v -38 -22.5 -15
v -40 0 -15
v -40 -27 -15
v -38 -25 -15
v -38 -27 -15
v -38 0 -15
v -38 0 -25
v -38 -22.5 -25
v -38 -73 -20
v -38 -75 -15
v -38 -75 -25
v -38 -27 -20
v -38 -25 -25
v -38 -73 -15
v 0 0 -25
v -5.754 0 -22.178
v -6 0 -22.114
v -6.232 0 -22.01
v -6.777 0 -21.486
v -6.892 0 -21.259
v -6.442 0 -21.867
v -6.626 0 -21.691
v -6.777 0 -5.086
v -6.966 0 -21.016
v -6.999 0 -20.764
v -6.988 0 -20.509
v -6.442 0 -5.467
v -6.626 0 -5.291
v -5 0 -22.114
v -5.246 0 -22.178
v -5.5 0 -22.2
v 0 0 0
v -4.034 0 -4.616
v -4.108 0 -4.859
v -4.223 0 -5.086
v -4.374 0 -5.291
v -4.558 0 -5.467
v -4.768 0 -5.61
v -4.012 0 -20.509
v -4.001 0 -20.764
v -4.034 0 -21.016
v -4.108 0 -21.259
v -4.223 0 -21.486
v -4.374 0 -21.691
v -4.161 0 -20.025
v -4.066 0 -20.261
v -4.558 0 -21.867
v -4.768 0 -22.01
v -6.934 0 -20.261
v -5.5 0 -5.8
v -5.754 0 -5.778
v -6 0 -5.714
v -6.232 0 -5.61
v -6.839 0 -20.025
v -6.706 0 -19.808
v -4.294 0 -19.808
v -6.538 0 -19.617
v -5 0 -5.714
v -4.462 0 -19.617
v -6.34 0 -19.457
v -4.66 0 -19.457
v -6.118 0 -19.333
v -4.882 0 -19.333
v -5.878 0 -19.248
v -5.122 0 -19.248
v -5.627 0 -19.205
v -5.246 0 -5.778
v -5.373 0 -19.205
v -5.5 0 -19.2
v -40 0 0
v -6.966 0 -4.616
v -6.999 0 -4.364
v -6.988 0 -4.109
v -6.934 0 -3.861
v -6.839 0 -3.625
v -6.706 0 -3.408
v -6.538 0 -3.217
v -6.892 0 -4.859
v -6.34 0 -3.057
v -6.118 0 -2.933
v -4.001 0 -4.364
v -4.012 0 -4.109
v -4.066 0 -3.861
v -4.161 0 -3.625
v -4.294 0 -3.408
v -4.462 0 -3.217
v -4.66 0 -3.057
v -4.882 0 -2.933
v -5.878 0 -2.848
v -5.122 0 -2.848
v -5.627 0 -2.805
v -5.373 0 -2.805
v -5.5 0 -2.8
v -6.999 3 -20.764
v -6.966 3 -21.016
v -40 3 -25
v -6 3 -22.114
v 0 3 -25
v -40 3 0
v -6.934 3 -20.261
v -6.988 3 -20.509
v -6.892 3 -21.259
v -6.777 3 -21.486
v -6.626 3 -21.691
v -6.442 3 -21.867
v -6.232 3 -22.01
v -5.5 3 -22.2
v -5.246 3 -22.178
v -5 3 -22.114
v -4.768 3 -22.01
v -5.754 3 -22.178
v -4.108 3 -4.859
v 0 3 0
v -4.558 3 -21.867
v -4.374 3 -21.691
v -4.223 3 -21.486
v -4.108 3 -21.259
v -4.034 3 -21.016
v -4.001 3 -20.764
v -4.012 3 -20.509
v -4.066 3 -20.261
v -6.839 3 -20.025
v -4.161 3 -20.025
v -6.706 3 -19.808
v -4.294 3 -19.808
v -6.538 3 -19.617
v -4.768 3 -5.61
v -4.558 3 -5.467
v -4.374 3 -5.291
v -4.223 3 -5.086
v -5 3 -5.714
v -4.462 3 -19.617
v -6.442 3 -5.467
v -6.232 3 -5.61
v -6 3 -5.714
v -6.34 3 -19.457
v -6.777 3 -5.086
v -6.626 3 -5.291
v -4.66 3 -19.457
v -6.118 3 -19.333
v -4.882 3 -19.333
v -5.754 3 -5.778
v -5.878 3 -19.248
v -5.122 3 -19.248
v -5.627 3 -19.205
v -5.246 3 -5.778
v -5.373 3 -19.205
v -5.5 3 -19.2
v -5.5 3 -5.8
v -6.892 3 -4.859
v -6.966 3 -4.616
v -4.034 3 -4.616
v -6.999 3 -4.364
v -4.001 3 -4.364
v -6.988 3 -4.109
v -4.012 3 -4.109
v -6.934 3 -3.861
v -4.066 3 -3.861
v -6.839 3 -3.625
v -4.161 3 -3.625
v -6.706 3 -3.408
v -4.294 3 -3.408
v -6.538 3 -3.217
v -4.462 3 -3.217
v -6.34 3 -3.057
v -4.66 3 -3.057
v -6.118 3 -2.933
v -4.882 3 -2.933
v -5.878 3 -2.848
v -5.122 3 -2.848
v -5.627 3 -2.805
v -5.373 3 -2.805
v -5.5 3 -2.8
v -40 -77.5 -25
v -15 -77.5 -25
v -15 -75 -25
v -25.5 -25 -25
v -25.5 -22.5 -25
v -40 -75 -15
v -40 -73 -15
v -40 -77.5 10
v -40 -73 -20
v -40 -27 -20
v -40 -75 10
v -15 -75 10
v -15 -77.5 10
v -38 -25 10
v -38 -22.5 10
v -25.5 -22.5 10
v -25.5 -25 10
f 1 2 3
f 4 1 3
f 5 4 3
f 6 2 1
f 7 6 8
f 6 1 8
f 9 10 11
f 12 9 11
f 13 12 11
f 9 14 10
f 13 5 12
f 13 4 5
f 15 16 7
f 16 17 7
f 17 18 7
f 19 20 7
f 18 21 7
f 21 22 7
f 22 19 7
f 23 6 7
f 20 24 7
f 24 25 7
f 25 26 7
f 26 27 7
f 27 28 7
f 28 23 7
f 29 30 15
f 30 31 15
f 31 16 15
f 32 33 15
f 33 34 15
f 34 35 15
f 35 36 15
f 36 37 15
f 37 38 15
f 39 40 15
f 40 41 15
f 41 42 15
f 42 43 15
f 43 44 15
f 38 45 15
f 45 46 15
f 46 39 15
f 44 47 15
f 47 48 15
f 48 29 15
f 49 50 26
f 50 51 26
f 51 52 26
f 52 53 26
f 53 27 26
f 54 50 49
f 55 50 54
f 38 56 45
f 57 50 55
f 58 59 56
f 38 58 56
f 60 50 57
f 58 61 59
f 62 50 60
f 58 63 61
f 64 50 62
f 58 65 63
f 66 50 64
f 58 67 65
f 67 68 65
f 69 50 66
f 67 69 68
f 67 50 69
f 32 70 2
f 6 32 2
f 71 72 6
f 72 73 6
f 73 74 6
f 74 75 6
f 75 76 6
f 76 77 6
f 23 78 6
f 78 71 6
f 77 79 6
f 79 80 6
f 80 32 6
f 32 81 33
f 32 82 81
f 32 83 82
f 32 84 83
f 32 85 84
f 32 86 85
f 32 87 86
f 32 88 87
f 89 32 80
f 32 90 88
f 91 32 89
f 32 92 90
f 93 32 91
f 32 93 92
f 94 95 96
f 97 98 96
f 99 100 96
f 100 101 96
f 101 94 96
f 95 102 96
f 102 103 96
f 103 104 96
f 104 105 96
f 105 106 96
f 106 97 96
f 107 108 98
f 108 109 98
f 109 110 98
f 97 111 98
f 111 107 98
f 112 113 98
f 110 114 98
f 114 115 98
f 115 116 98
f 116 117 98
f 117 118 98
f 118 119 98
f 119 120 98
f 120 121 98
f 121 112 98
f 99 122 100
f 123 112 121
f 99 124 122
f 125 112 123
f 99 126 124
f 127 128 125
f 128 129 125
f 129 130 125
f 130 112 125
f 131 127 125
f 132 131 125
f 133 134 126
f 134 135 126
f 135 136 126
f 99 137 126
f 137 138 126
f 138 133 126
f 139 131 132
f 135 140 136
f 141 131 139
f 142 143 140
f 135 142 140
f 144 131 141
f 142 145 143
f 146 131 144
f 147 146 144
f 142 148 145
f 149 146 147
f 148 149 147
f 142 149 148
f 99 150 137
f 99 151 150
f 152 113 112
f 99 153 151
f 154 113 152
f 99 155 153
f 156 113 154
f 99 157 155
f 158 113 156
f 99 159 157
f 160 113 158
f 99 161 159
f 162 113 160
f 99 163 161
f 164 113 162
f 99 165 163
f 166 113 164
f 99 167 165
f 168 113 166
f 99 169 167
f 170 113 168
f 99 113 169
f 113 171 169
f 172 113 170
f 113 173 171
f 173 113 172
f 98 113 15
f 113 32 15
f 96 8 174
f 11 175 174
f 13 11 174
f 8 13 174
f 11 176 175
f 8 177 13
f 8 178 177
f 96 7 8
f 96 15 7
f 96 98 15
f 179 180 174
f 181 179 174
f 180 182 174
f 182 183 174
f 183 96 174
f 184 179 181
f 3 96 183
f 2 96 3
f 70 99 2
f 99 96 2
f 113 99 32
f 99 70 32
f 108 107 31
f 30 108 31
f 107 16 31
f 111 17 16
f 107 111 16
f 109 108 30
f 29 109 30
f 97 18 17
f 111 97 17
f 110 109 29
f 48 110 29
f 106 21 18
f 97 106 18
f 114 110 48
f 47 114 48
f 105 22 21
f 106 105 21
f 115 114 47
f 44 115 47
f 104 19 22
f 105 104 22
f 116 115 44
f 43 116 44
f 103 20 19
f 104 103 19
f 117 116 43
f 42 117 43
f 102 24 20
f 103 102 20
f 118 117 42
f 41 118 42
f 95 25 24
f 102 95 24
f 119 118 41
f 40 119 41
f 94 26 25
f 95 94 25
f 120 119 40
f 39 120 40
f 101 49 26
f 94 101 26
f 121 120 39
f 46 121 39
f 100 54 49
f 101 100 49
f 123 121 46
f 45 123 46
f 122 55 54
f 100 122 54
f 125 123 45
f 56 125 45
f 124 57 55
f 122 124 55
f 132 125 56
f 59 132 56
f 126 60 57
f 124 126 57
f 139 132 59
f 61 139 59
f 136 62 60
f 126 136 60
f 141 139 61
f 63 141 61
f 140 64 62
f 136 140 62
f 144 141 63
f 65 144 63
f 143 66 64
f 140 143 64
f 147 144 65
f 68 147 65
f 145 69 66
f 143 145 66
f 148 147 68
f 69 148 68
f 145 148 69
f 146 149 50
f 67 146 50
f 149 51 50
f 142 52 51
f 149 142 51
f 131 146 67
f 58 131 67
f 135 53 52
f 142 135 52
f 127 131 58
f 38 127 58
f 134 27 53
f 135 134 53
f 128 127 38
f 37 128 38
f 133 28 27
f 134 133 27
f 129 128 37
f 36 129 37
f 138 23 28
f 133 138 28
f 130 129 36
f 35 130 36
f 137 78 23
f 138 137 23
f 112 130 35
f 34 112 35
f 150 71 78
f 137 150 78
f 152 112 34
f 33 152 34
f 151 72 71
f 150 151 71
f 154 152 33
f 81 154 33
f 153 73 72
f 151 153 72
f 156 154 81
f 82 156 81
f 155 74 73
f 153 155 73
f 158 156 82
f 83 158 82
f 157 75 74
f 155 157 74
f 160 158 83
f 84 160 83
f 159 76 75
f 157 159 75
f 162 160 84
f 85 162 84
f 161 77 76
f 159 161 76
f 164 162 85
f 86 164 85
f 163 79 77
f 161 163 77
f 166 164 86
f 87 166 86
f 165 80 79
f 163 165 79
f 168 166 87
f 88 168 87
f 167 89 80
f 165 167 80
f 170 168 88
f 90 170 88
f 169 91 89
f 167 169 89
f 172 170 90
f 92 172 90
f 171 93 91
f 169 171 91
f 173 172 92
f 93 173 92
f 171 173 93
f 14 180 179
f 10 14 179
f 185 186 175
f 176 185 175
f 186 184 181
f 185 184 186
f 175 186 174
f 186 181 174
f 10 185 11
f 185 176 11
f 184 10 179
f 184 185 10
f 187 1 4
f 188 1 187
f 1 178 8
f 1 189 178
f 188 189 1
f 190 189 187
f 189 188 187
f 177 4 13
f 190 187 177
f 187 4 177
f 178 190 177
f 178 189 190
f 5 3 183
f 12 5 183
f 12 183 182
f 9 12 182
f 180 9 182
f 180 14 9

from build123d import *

# Parameters (mm, degrees)
SKETCH1_W           = 40
SKETCH1_H           = 25
SKETCH1_R           = 1.5
BOSS_EXTRUDE1_DEPTH = 3
SKETCH2_W           = 2
SKETCH2_H           = 10
BOSS_EXTRUDE2_DEPTH = 75
SKETCH6_W           = 25
SKETCH6_H           = 35
BOSS_EXTRUDE3_DEPTH = 2.5
SKETCH7_W           = 35
SKETCH7_H           = 2.5
BOSS_EXTRUDE4_DEPTH = 12.5
SKETCH8_W           = 5
SKETCH8_H           = 46
CUT_EXTRUDE2_DEPTH  = 90.862394805


with BuildPart() as part:
    # Sketch1 → Boss-Extrude1 (new body)
    with BuildSketch(Plane(origin=(0, 0, 0), x_dir=(1, 0, 0), z_dir=(0, 1, 0))):
        with Locations((-20, 12.5)):
            Rectangle(SKETCH1_W, SKETCH1_H)
        with Locations(Location((-5.5, 20.7, 0), (0, 0, 270))):
            Circle(SKETCH1_R, mode=Mode.SUBTRACT)
        with Locations(Location((-5.5, 4.3, 0), (0, 0, 270))):
            Circle(SKETCH1_R, mode=Mode.SUBTRACT)
    extrude(amount=BOSS_EXTRUDE1_DEPTH)

    # Sketch2 → Boss-Extrude2 (add)
    with BuildSketch(Plane.XZ):
        with Locations((-39, -20)):
            Rectangle(SKETCH2_W, SKETCH2_H)
    extrude(amount=BOSS_EXTRUDE2_DEPTH)

    # Sketch6 → Boss-Extrude3 (add)
    with BuildSketch(Plane.XZ.offset(75)):
        with Locations((-27.5, -7.5)):
            Rectangle(SKETCH6_W, SKETCH6_H)
    extrude(amount=BOSS_EXTRUDE3_DEPTH)

    # Sketch7 → Boss-Extrude4 (add)
    with BuildSketch(Plane(origin=(-38, 0, 0), x_dir=(0, 0, -1), z_dir=(1, 0, 0))):
        with Locations((7.5, -23.75)):
            Rectangle(SKETCH7_W, SKETCH7_H)
    extrude(amount=BOSS_EXTRUDE4_DEPTH)

    # Sketch8 → Cut-Extrude2 (cut, through all)
    with BuildSketch(Plane(origin=(-38, 0, 0), x_dir=(0, 0, -1), z_dir=(1, 0, 0))):
        with Locations((17.5, -50)):
            Rectangle(SKETCH8_W, SKETCH8_H)
    extrude(amount=-CUT_EXTRUDE2_DEPTH, mode=Mode.SUBTRACT)


solid = part.part
